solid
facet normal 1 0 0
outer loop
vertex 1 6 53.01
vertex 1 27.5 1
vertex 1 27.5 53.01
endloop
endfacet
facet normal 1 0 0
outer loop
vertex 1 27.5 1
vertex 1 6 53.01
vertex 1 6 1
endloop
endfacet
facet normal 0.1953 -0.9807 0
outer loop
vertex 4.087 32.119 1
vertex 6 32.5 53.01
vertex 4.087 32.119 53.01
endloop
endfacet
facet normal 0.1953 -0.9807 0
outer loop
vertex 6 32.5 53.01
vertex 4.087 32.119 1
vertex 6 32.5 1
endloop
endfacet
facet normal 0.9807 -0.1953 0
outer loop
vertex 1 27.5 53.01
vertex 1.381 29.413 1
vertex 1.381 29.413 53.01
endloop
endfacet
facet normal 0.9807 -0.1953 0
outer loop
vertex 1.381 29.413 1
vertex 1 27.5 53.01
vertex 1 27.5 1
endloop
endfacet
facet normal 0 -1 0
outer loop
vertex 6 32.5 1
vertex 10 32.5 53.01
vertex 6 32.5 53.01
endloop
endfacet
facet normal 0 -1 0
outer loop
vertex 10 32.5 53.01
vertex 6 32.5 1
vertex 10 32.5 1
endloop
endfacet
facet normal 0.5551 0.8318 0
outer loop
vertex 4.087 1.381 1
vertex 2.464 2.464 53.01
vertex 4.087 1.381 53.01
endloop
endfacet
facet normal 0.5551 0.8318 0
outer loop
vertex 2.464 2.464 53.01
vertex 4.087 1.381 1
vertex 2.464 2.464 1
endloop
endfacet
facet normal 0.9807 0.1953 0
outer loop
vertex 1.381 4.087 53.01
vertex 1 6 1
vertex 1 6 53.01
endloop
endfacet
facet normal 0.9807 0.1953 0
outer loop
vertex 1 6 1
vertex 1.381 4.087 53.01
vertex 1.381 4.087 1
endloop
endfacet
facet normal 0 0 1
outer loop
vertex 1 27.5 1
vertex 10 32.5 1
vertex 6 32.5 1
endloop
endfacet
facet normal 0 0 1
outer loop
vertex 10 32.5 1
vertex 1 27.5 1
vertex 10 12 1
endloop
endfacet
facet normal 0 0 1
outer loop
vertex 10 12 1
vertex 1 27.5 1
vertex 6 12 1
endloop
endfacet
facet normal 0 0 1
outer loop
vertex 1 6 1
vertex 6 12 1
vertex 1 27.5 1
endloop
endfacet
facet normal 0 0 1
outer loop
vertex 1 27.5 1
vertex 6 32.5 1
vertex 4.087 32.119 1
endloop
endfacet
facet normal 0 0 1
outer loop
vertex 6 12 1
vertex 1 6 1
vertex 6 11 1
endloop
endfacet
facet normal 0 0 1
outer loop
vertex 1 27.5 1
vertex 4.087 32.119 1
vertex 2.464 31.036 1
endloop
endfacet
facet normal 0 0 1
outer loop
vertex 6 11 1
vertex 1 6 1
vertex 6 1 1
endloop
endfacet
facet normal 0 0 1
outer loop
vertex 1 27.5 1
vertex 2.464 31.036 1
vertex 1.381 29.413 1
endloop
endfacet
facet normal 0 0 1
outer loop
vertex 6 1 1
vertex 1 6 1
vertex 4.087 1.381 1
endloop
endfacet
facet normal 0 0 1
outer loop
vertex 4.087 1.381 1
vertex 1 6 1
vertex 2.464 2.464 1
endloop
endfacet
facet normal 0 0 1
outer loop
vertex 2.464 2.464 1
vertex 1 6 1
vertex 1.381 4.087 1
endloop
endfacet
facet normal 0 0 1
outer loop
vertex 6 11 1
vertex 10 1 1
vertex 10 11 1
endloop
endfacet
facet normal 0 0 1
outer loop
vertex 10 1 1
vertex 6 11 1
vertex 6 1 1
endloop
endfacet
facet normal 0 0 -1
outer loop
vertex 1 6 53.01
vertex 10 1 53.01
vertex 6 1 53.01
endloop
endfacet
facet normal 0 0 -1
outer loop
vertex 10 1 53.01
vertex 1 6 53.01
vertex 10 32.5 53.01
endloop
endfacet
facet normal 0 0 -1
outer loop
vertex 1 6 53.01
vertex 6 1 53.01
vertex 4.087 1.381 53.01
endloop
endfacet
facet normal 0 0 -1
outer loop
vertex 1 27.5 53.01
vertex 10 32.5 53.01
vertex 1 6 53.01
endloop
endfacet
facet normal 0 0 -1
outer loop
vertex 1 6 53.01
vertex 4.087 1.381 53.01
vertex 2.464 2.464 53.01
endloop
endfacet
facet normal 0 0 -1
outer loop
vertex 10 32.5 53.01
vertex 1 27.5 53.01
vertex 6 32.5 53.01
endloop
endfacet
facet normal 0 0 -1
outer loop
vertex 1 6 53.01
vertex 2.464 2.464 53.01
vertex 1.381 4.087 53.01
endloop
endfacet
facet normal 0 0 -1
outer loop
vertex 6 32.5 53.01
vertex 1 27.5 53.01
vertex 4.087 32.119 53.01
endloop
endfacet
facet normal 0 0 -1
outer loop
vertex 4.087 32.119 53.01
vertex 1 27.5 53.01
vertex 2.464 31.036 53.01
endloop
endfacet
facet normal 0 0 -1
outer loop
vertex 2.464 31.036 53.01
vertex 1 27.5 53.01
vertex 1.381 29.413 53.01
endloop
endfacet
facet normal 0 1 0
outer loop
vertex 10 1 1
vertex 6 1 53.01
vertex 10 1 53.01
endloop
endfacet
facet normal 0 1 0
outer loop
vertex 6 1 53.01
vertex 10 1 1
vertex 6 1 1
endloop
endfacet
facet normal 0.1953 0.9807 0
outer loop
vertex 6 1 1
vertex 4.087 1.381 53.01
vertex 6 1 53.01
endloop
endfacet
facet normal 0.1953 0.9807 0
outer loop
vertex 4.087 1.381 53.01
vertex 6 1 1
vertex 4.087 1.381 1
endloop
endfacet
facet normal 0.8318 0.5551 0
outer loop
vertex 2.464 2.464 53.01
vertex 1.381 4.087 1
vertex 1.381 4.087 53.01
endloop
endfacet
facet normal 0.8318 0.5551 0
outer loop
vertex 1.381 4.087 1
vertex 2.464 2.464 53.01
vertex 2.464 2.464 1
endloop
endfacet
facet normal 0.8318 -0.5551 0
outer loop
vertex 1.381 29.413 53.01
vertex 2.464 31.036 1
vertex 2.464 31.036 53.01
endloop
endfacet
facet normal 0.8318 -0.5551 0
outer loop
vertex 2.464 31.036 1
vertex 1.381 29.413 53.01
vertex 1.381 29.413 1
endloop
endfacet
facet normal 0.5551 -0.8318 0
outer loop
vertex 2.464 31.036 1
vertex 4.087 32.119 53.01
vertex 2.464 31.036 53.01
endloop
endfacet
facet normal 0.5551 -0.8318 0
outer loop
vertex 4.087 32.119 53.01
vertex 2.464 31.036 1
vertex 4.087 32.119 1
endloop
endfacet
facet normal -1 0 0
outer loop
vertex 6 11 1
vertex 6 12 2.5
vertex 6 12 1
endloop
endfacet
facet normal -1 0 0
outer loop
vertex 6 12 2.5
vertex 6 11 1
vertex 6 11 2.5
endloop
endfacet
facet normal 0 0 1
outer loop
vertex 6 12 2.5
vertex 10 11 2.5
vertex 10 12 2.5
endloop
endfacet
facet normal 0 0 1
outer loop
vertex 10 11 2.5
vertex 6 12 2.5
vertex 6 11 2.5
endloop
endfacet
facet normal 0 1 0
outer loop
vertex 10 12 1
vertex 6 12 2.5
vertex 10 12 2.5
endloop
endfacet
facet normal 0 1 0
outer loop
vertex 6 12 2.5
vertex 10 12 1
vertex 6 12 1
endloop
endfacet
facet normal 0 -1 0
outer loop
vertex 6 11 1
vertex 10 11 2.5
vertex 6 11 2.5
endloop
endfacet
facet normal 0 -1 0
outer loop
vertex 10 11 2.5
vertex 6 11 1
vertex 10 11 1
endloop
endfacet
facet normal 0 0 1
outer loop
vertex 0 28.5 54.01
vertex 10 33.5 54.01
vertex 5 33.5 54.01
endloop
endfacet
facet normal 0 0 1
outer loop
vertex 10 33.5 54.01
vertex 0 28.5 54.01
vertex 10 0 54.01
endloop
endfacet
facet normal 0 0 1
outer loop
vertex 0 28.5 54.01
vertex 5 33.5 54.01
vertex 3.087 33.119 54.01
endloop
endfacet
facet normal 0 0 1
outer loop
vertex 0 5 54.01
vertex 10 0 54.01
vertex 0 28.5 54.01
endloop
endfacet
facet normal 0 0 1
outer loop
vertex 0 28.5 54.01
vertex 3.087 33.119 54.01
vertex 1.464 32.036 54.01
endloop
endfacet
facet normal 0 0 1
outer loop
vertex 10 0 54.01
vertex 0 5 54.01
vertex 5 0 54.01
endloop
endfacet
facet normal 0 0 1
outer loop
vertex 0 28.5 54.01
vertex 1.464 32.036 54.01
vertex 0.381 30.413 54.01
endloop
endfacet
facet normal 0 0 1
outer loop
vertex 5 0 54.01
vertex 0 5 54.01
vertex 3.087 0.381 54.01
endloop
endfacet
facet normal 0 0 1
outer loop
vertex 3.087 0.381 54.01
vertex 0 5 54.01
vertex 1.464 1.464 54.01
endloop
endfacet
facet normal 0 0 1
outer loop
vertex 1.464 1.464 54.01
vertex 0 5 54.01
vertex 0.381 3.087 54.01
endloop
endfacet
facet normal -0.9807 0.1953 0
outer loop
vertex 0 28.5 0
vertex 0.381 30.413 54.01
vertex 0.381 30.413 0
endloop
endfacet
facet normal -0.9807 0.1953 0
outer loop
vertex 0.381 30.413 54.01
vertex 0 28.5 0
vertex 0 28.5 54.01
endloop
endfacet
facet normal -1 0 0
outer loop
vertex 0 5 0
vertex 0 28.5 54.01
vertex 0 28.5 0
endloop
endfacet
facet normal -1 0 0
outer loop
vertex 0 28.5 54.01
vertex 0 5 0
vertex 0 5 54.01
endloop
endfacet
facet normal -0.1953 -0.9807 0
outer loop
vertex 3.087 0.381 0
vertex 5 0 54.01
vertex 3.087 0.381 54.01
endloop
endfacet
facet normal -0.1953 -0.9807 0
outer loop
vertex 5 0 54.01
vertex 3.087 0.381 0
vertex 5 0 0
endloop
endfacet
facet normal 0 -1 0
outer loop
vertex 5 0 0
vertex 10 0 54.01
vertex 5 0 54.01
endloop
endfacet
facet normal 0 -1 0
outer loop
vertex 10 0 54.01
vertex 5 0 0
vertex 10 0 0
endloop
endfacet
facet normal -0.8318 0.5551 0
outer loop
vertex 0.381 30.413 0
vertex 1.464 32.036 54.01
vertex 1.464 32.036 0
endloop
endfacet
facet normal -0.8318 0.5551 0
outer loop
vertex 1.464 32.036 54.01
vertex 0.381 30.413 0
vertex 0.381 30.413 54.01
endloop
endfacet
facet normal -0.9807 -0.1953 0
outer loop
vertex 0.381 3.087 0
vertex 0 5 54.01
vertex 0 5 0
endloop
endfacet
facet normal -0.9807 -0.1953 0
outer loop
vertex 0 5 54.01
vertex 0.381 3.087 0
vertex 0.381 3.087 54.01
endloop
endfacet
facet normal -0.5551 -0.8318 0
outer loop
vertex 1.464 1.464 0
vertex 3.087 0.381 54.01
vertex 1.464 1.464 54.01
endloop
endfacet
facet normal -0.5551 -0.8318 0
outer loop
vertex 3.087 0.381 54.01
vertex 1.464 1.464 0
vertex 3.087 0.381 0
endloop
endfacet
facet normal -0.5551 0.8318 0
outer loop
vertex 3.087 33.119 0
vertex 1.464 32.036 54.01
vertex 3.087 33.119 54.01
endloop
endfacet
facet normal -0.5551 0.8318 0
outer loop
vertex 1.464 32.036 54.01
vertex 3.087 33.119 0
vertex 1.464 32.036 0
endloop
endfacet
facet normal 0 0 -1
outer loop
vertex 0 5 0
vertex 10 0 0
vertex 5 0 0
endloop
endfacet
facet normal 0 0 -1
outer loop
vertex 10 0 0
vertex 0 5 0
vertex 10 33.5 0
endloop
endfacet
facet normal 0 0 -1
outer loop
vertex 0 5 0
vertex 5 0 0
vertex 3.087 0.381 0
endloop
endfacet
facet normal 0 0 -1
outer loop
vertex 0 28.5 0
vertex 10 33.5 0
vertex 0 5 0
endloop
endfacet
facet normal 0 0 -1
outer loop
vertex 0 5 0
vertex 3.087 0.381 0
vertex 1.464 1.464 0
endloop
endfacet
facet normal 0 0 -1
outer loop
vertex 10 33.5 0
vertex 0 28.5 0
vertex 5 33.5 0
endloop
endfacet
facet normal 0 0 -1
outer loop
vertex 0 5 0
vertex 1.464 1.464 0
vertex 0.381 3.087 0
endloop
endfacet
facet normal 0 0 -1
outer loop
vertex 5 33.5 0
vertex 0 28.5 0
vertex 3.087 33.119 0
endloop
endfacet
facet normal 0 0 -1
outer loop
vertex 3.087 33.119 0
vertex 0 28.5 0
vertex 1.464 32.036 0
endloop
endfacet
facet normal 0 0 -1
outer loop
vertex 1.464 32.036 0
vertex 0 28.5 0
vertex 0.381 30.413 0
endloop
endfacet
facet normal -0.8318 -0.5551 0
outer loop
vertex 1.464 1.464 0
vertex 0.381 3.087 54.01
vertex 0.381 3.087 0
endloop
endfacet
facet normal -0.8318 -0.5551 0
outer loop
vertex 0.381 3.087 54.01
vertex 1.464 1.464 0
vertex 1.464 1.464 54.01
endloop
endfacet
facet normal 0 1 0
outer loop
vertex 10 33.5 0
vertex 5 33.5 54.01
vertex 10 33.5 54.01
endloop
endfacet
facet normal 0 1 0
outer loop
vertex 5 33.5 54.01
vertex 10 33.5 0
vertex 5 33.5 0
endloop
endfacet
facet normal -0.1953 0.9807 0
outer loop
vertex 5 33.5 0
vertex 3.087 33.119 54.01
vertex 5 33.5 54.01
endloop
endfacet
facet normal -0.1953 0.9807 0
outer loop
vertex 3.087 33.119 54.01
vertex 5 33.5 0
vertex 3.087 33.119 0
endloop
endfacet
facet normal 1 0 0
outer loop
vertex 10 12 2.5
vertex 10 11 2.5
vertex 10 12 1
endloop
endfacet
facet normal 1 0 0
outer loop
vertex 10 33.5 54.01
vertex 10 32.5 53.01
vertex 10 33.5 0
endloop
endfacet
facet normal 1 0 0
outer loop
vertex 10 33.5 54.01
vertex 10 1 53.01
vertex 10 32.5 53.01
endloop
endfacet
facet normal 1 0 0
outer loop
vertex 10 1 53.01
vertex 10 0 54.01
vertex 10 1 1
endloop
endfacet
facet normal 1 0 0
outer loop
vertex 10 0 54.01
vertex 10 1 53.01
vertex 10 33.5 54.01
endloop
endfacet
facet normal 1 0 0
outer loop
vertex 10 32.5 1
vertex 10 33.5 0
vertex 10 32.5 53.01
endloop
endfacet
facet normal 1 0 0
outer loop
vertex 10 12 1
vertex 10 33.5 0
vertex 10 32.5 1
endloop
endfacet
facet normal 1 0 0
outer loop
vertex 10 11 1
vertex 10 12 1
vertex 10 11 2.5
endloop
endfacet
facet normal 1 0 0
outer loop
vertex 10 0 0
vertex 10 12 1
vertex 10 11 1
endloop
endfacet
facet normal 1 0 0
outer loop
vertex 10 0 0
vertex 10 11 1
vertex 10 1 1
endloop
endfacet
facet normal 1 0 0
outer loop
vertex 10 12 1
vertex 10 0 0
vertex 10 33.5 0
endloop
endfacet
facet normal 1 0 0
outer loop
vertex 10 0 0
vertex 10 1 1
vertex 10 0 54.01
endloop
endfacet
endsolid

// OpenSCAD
// Peice Dimensions
cobWidth = 8;
cobEndWidth = 11;
cobLength = 50;
cobEndlength = 56;

cobDepth = 5.5;

batteryTerminalSpace = 1;

batteryHolderLength = 52;
batteryHolderWidth = 31.5;
batteryHolderHeight = 14;
batteryHolderDepth = 12;
batteryDiameter = 10;
batteryHeight = 43;

lightCobWidth = 8;
ligthCobLength=60;
lightCobHeight = 2;
lightCobAttachementPoint = 3;
lightCobAttachementHoldDiameter = 2;

diffuser=1.5;

switchWidth = 6;
switchHeight = 13.5;
switchAttachmentDepth = 1;
switchAttachmentLength = 19.56;
switchAttachmentWidth = 4.5;
switchAttachemtnHoleDiameter = 3;


switchBodyLength = 11.75;
switchBodyHeight = 5;
switchPinsWidth = 1.5;
switchPinsHeight = 3;

switchLeverLengthWidth = 3;
switchLeverHeight = 5;

//Renders;
batteryBox();

module batteryBox(){
    translate([5,5,0]){
        difference() {
            roundedBox(batteryHolderHeight+2, batteryHolderWidth+2, batteryHolderLength+2,5);
            translate([1,1,1]) {
                difference() {
                    roundedBox(batteryHolderHeight, batteryHolderWidth, batteryHolderLength,5);
                    translate([0,5,0]){
                    squareBox(batteryDiameter,1,batteryTerminalSpace+.5);
                    }
                }
            }
            translate([5,-5,-1]){
                squareBox(10, batteryHolderWidth+15, batteryHolderHeight+45); 
            }
        }
    }
}

//Helper Functions
module squareBox(length, width, height){
    cube(size=[length, width, height]);
}

module roundedBox(length, width, height, radius) {
    dRadius = 2*radius;
    
    //base rounded shape
    minkowski() {
        cube(size=[length-dRadius,width-dRadius, height]);
        cylinder(r=radius, h=0.01);
    } 
}
